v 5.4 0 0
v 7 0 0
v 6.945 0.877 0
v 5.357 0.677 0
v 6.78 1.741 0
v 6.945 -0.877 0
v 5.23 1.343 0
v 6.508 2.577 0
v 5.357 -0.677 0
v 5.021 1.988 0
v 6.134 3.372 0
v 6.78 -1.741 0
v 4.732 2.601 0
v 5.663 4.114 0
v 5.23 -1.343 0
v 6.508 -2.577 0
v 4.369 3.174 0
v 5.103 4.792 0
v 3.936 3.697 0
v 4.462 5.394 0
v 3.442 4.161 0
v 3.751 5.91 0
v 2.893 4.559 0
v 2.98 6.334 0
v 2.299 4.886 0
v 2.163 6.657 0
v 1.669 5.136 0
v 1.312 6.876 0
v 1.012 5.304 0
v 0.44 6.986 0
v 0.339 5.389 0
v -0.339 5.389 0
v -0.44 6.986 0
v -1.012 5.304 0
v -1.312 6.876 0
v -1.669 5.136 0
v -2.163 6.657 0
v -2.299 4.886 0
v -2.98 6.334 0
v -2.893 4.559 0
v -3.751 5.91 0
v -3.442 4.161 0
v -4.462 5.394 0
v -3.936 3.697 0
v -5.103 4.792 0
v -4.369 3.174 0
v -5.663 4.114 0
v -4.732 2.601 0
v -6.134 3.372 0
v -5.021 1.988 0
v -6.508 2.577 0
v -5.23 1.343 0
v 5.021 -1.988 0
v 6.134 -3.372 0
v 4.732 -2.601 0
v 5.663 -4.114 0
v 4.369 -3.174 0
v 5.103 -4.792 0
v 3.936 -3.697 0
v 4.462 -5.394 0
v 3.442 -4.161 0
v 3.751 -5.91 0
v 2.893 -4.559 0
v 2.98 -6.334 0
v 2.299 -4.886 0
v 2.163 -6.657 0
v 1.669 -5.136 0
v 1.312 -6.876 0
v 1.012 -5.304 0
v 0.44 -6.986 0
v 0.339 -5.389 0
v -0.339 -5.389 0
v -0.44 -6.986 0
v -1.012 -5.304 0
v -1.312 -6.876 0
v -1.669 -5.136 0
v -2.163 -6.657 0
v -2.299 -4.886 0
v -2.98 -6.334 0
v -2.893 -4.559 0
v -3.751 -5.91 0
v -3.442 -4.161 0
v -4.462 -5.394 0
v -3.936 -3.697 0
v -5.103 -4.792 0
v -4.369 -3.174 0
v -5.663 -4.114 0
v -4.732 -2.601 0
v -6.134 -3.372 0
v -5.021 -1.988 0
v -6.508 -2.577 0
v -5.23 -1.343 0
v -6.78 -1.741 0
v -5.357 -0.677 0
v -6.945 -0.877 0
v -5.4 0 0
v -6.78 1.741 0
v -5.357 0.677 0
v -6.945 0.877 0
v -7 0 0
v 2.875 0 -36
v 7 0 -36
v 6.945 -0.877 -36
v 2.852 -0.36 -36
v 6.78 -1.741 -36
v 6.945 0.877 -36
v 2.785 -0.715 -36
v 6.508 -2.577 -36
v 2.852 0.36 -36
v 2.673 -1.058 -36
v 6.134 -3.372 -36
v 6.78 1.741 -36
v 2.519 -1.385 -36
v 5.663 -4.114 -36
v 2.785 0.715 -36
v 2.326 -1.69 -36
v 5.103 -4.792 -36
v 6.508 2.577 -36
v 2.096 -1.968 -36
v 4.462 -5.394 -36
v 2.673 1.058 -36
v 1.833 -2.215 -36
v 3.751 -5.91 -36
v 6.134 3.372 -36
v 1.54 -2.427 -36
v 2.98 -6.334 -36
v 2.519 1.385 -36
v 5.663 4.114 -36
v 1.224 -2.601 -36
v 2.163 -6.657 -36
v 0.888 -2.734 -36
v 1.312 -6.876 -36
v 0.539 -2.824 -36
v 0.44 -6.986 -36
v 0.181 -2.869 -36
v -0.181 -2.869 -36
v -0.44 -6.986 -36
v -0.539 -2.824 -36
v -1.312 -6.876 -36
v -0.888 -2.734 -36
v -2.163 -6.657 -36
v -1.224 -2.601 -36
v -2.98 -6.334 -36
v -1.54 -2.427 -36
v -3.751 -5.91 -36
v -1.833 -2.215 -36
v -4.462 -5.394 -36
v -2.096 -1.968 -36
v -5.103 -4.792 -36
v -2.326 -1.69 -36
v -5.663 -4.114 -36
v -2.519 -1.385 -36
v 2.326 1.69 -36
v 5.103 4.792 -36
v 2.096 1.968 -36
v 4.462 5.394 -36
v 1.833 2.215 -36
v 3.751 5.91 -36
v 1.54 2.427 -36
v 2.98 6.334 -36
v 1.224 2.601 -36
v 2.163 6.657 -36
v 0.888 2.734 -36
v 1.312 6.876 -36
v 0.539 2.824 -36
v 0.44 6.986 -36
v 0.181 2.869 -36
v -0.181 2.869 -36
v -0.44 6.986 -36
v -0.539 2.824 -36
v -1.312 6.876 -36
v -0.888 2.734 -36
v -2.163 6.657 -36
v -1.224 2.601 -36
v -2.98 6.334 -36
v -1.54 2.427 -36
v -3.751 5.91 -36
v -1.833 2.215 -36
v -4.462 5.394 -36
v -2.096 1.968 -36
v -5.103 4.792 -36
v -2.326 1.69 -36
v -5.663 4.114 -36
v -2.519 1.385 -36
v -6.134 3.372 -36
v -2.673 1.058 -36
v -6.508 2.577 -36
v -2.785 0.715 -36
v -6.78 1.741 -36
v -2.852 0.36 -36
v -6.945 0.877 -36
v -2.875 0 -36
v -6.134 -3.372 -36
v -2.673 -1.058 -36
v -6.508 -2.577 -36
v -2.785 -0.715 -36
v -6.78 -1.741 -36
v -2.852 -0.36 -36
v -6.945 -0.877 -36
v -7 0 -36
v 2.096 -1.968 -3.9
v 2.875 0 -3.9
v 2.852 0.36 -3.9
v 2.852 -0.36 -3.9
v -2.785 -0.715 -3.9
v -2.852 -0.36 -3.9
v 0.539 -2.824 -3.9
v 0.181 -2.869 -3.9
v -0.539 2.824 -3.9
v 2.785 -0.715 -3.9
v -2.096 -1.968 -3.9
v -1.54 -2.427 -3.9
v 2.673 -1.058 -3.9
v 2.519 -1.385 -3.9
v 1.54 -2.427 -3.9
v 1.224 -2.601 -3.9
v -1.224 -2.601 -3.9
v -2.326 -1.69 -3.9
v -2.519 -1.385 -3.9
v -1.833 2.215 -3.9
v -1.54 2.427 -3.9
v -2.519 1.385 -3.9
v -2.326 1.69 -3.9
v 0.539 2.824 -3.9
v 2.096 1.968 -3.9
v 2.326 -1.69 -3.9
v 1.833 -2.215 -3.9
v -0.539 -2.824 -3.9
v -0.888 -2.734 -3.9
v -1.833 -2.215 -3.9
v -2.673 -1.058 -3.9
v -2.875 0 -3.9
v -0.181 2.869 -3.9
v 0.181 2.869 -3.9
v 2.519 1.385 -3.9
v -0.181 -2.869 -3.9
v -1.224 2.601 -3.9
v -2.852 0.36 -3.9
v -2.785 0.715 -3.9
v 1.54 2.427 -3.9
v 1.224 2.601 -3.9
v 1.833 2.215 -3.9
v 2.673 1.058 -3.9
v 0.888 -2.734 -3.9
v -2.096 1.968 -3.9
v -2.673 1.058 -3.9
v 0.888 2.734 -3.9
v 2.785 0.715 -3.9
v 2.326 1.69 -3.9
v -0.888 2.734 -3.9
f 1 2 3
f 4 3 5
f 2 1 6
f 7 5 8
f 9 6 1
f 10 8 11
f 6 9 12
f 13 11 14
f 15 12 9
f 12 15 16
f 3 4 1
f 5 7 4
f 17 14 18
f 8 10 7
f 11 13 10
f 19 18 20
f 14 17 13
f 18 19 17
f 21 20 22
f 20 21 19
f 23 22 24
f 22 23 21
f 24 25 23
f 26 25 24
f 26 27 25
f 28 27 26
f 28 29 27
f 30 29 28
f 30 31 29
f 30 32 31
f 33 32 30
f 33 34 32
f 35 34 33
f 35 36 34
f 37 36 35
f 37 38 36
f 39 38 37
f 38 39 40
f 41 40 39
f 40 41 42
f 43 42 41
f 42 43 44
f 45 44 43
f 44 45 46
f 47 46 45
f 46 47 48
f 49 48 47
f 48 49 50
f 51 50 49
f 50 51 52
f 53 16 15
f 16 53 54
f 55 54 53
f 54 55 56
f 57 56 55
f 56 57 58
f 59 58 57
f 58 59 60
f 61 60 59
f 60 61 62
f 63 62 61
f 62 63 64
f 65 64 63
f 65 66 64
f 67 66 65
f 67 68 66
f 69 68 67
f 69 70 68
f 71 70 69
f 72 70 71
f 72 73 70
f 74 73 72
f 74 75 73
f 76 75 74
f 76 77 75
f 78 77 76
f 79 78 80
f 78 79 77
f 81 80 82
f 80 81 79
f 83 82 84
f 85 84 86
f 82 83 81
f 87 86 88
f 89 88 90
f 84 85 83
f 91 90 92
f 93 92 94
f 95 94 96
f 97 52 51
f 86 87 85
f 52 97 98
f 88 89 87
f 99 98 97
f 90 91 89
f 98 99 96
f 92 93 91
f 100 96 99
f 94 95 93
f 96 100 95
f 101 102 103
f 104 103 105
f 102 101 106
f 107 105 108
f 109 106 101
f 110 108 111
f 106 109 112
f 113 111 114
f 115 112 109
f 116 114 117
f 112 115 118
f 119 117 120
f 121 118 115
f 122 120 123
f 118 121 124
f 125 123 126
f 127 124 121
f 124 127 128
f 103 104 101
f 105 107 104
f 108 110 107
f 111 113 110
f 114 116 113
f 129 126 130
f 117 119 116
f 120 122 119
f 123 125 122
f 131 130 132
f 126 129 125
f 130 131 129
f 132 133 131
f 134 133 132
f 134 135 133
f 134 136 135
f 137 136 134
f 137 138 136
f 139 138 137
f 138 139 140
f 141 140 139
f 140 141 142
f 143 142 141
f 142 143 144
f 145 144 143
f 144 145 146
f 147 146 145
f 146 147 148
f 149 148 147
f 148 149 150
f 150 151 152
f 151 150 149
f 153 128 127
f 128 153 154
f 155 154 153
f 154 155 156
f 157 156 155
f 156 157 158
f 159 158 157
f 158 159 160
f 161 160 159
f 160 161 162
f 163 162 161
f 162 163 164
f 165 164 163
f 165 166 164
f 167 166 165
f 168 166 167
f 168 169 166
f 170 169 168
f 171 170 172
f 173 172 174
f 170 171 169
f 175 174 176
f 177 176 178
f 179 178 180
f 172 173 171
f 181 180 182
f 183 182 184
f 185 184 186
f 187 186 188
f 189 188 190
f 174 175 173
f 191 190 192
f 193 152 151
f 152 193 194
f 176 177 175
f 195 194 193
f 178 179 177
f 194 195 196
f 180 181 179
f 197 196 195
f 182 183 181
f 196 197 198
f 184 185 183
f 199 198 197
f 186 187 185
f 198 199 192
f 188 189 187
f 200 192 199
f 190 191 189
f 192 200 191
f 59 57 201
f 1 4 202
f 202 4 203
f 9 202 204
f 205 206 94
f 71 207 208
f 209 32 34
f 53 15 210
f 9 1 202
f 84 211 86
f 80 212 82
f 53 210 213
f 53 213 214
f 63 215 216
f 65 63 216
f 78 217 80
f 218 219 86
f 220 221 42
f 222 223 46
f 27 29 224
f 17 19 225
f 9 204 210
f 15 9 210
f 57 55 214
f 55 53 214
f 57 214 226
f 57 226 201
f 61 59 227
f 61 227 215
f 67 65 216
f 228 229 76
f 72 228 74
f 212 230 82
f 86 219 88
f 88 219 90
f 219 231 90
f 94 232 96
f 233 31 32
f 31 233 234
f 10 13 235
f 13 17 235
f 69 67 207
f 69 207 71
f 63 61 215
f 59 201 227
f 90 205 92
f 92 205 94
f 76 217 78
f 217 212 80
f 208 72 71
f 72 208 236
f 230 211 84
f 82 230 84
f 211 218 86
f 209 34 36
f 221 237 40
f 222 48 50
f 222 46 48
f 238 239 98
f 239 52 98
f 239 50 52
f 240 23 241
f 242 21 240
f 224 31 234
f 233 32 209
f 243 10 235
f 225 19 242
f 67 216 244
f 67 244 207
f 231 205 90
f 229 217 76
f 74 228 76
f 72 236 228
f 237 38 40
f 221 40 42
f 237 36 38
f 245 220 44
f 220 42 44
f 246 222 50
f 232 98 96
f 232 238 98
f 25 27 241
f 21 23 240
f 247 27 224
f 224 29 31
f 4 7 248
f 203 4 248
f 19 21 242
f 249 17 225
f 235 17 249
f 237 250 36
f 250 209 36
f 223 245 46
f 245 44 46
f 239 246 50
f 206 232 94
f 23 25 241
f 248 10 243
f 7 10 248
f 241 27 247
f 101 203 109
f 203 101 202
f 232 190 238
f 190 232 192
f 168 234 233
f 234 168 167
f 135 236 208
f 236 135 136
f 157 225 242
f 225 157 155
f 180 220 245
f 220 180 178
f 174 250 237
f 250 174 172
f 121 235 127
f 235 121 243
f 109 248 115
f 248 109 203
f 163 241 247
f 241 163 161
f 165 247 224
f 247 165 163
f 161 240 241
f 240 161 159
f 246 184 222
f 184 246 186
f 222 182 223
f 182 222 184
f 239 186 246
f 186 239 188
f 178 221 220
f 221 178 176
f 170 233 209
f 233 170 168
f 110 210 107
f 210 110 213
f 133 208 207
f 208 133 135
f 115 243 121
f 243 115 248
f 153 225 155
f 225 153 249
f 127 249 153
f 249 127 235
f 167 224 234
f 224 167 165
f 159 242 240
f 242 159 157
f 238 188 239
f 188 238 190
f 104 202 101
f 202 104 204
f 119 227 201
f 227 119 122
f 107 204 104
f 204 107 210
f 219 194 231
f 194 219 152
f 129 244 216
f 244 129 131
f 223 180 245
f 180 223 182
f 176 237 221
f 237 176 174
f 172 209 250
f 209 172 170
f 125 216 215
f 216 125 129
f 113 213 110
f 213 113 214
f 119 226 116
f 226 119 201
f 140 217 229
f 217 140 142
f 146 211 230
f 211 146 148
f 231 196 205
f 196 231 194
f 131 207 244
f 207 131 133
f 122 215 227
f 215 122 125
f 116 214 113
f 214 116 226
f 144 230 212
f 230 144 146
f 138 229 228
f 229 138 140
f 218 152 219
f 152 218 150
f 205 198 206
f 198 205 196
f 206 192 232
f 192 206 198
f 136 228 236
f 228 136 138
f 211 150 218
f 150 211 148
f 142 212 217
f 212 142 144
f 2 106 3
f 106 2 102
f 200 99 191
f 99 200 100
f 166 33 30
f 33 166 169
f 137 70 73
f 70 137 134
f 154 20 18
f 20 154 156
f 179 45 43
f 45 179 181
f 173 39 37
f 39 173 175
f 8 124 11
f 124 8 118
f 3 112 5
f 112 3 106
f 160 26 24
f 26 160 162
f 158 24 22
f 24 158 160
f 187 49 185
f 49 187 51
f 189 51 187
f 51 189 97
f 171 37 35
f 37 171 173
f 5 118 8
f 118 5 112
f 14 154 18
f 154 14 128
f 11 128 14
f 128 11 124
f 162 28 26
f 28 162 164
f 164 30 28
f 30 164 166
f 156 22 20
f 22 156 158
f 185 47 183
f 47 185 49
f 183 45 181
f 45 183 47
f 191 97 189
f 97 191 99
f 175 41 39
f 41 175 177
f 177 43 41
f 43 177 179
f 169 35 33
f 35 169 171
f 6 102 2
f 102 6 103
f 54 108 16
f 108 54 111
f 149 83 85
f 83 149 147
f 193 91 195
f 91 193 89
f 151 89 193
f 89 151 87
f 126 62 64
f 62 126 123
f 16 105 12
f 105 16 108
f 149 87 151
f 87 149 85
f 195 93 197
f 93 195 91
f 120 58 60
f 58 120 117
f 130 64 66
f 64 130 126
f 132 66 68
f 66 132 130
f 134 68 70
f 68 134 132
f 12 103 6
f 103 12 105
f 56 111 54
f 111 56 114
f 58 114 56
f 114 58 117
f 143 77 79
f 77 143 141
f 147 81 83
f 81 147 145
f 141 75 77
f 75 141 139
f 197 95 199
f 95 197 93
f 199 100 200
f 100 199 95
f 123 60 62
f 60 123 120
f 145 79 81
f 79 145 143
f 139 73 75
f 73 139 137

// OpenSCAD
$fn = 50;


difference() {
	union() {
		translate(v = [0, 0, -36.0000000000]) {
			cylinder(h = 36, r = 7.0000000000);
		}
	}
	union() {
		translate(v = [0, 0, 0]) {
			rotate(a = [0, 0, 0]) {
				difference() {
					union() {
						#translate(v = [0, 0, -36.0000000000]) {
							cylinder(h = 36, r = 2.6000000000);
						}
						#translate(v = [0, 0, -3.9000000000]) {
							cylinder(h = 3.9000000000, r = 7.0000000000, r1 = 2.8750000000, r2 = 5.4000000000);
						}
						#translate(v = [0, 0, -36.0000000000]) {
							cylinder(h = 36, r = 2.8750000000);
						}
						#translate(v = [0, 0, -36.0000000000]) {
							cylinder(h = 36, r = 2.6000000000);
						}
					}
					union();
				}
			}
		}
	}
}
